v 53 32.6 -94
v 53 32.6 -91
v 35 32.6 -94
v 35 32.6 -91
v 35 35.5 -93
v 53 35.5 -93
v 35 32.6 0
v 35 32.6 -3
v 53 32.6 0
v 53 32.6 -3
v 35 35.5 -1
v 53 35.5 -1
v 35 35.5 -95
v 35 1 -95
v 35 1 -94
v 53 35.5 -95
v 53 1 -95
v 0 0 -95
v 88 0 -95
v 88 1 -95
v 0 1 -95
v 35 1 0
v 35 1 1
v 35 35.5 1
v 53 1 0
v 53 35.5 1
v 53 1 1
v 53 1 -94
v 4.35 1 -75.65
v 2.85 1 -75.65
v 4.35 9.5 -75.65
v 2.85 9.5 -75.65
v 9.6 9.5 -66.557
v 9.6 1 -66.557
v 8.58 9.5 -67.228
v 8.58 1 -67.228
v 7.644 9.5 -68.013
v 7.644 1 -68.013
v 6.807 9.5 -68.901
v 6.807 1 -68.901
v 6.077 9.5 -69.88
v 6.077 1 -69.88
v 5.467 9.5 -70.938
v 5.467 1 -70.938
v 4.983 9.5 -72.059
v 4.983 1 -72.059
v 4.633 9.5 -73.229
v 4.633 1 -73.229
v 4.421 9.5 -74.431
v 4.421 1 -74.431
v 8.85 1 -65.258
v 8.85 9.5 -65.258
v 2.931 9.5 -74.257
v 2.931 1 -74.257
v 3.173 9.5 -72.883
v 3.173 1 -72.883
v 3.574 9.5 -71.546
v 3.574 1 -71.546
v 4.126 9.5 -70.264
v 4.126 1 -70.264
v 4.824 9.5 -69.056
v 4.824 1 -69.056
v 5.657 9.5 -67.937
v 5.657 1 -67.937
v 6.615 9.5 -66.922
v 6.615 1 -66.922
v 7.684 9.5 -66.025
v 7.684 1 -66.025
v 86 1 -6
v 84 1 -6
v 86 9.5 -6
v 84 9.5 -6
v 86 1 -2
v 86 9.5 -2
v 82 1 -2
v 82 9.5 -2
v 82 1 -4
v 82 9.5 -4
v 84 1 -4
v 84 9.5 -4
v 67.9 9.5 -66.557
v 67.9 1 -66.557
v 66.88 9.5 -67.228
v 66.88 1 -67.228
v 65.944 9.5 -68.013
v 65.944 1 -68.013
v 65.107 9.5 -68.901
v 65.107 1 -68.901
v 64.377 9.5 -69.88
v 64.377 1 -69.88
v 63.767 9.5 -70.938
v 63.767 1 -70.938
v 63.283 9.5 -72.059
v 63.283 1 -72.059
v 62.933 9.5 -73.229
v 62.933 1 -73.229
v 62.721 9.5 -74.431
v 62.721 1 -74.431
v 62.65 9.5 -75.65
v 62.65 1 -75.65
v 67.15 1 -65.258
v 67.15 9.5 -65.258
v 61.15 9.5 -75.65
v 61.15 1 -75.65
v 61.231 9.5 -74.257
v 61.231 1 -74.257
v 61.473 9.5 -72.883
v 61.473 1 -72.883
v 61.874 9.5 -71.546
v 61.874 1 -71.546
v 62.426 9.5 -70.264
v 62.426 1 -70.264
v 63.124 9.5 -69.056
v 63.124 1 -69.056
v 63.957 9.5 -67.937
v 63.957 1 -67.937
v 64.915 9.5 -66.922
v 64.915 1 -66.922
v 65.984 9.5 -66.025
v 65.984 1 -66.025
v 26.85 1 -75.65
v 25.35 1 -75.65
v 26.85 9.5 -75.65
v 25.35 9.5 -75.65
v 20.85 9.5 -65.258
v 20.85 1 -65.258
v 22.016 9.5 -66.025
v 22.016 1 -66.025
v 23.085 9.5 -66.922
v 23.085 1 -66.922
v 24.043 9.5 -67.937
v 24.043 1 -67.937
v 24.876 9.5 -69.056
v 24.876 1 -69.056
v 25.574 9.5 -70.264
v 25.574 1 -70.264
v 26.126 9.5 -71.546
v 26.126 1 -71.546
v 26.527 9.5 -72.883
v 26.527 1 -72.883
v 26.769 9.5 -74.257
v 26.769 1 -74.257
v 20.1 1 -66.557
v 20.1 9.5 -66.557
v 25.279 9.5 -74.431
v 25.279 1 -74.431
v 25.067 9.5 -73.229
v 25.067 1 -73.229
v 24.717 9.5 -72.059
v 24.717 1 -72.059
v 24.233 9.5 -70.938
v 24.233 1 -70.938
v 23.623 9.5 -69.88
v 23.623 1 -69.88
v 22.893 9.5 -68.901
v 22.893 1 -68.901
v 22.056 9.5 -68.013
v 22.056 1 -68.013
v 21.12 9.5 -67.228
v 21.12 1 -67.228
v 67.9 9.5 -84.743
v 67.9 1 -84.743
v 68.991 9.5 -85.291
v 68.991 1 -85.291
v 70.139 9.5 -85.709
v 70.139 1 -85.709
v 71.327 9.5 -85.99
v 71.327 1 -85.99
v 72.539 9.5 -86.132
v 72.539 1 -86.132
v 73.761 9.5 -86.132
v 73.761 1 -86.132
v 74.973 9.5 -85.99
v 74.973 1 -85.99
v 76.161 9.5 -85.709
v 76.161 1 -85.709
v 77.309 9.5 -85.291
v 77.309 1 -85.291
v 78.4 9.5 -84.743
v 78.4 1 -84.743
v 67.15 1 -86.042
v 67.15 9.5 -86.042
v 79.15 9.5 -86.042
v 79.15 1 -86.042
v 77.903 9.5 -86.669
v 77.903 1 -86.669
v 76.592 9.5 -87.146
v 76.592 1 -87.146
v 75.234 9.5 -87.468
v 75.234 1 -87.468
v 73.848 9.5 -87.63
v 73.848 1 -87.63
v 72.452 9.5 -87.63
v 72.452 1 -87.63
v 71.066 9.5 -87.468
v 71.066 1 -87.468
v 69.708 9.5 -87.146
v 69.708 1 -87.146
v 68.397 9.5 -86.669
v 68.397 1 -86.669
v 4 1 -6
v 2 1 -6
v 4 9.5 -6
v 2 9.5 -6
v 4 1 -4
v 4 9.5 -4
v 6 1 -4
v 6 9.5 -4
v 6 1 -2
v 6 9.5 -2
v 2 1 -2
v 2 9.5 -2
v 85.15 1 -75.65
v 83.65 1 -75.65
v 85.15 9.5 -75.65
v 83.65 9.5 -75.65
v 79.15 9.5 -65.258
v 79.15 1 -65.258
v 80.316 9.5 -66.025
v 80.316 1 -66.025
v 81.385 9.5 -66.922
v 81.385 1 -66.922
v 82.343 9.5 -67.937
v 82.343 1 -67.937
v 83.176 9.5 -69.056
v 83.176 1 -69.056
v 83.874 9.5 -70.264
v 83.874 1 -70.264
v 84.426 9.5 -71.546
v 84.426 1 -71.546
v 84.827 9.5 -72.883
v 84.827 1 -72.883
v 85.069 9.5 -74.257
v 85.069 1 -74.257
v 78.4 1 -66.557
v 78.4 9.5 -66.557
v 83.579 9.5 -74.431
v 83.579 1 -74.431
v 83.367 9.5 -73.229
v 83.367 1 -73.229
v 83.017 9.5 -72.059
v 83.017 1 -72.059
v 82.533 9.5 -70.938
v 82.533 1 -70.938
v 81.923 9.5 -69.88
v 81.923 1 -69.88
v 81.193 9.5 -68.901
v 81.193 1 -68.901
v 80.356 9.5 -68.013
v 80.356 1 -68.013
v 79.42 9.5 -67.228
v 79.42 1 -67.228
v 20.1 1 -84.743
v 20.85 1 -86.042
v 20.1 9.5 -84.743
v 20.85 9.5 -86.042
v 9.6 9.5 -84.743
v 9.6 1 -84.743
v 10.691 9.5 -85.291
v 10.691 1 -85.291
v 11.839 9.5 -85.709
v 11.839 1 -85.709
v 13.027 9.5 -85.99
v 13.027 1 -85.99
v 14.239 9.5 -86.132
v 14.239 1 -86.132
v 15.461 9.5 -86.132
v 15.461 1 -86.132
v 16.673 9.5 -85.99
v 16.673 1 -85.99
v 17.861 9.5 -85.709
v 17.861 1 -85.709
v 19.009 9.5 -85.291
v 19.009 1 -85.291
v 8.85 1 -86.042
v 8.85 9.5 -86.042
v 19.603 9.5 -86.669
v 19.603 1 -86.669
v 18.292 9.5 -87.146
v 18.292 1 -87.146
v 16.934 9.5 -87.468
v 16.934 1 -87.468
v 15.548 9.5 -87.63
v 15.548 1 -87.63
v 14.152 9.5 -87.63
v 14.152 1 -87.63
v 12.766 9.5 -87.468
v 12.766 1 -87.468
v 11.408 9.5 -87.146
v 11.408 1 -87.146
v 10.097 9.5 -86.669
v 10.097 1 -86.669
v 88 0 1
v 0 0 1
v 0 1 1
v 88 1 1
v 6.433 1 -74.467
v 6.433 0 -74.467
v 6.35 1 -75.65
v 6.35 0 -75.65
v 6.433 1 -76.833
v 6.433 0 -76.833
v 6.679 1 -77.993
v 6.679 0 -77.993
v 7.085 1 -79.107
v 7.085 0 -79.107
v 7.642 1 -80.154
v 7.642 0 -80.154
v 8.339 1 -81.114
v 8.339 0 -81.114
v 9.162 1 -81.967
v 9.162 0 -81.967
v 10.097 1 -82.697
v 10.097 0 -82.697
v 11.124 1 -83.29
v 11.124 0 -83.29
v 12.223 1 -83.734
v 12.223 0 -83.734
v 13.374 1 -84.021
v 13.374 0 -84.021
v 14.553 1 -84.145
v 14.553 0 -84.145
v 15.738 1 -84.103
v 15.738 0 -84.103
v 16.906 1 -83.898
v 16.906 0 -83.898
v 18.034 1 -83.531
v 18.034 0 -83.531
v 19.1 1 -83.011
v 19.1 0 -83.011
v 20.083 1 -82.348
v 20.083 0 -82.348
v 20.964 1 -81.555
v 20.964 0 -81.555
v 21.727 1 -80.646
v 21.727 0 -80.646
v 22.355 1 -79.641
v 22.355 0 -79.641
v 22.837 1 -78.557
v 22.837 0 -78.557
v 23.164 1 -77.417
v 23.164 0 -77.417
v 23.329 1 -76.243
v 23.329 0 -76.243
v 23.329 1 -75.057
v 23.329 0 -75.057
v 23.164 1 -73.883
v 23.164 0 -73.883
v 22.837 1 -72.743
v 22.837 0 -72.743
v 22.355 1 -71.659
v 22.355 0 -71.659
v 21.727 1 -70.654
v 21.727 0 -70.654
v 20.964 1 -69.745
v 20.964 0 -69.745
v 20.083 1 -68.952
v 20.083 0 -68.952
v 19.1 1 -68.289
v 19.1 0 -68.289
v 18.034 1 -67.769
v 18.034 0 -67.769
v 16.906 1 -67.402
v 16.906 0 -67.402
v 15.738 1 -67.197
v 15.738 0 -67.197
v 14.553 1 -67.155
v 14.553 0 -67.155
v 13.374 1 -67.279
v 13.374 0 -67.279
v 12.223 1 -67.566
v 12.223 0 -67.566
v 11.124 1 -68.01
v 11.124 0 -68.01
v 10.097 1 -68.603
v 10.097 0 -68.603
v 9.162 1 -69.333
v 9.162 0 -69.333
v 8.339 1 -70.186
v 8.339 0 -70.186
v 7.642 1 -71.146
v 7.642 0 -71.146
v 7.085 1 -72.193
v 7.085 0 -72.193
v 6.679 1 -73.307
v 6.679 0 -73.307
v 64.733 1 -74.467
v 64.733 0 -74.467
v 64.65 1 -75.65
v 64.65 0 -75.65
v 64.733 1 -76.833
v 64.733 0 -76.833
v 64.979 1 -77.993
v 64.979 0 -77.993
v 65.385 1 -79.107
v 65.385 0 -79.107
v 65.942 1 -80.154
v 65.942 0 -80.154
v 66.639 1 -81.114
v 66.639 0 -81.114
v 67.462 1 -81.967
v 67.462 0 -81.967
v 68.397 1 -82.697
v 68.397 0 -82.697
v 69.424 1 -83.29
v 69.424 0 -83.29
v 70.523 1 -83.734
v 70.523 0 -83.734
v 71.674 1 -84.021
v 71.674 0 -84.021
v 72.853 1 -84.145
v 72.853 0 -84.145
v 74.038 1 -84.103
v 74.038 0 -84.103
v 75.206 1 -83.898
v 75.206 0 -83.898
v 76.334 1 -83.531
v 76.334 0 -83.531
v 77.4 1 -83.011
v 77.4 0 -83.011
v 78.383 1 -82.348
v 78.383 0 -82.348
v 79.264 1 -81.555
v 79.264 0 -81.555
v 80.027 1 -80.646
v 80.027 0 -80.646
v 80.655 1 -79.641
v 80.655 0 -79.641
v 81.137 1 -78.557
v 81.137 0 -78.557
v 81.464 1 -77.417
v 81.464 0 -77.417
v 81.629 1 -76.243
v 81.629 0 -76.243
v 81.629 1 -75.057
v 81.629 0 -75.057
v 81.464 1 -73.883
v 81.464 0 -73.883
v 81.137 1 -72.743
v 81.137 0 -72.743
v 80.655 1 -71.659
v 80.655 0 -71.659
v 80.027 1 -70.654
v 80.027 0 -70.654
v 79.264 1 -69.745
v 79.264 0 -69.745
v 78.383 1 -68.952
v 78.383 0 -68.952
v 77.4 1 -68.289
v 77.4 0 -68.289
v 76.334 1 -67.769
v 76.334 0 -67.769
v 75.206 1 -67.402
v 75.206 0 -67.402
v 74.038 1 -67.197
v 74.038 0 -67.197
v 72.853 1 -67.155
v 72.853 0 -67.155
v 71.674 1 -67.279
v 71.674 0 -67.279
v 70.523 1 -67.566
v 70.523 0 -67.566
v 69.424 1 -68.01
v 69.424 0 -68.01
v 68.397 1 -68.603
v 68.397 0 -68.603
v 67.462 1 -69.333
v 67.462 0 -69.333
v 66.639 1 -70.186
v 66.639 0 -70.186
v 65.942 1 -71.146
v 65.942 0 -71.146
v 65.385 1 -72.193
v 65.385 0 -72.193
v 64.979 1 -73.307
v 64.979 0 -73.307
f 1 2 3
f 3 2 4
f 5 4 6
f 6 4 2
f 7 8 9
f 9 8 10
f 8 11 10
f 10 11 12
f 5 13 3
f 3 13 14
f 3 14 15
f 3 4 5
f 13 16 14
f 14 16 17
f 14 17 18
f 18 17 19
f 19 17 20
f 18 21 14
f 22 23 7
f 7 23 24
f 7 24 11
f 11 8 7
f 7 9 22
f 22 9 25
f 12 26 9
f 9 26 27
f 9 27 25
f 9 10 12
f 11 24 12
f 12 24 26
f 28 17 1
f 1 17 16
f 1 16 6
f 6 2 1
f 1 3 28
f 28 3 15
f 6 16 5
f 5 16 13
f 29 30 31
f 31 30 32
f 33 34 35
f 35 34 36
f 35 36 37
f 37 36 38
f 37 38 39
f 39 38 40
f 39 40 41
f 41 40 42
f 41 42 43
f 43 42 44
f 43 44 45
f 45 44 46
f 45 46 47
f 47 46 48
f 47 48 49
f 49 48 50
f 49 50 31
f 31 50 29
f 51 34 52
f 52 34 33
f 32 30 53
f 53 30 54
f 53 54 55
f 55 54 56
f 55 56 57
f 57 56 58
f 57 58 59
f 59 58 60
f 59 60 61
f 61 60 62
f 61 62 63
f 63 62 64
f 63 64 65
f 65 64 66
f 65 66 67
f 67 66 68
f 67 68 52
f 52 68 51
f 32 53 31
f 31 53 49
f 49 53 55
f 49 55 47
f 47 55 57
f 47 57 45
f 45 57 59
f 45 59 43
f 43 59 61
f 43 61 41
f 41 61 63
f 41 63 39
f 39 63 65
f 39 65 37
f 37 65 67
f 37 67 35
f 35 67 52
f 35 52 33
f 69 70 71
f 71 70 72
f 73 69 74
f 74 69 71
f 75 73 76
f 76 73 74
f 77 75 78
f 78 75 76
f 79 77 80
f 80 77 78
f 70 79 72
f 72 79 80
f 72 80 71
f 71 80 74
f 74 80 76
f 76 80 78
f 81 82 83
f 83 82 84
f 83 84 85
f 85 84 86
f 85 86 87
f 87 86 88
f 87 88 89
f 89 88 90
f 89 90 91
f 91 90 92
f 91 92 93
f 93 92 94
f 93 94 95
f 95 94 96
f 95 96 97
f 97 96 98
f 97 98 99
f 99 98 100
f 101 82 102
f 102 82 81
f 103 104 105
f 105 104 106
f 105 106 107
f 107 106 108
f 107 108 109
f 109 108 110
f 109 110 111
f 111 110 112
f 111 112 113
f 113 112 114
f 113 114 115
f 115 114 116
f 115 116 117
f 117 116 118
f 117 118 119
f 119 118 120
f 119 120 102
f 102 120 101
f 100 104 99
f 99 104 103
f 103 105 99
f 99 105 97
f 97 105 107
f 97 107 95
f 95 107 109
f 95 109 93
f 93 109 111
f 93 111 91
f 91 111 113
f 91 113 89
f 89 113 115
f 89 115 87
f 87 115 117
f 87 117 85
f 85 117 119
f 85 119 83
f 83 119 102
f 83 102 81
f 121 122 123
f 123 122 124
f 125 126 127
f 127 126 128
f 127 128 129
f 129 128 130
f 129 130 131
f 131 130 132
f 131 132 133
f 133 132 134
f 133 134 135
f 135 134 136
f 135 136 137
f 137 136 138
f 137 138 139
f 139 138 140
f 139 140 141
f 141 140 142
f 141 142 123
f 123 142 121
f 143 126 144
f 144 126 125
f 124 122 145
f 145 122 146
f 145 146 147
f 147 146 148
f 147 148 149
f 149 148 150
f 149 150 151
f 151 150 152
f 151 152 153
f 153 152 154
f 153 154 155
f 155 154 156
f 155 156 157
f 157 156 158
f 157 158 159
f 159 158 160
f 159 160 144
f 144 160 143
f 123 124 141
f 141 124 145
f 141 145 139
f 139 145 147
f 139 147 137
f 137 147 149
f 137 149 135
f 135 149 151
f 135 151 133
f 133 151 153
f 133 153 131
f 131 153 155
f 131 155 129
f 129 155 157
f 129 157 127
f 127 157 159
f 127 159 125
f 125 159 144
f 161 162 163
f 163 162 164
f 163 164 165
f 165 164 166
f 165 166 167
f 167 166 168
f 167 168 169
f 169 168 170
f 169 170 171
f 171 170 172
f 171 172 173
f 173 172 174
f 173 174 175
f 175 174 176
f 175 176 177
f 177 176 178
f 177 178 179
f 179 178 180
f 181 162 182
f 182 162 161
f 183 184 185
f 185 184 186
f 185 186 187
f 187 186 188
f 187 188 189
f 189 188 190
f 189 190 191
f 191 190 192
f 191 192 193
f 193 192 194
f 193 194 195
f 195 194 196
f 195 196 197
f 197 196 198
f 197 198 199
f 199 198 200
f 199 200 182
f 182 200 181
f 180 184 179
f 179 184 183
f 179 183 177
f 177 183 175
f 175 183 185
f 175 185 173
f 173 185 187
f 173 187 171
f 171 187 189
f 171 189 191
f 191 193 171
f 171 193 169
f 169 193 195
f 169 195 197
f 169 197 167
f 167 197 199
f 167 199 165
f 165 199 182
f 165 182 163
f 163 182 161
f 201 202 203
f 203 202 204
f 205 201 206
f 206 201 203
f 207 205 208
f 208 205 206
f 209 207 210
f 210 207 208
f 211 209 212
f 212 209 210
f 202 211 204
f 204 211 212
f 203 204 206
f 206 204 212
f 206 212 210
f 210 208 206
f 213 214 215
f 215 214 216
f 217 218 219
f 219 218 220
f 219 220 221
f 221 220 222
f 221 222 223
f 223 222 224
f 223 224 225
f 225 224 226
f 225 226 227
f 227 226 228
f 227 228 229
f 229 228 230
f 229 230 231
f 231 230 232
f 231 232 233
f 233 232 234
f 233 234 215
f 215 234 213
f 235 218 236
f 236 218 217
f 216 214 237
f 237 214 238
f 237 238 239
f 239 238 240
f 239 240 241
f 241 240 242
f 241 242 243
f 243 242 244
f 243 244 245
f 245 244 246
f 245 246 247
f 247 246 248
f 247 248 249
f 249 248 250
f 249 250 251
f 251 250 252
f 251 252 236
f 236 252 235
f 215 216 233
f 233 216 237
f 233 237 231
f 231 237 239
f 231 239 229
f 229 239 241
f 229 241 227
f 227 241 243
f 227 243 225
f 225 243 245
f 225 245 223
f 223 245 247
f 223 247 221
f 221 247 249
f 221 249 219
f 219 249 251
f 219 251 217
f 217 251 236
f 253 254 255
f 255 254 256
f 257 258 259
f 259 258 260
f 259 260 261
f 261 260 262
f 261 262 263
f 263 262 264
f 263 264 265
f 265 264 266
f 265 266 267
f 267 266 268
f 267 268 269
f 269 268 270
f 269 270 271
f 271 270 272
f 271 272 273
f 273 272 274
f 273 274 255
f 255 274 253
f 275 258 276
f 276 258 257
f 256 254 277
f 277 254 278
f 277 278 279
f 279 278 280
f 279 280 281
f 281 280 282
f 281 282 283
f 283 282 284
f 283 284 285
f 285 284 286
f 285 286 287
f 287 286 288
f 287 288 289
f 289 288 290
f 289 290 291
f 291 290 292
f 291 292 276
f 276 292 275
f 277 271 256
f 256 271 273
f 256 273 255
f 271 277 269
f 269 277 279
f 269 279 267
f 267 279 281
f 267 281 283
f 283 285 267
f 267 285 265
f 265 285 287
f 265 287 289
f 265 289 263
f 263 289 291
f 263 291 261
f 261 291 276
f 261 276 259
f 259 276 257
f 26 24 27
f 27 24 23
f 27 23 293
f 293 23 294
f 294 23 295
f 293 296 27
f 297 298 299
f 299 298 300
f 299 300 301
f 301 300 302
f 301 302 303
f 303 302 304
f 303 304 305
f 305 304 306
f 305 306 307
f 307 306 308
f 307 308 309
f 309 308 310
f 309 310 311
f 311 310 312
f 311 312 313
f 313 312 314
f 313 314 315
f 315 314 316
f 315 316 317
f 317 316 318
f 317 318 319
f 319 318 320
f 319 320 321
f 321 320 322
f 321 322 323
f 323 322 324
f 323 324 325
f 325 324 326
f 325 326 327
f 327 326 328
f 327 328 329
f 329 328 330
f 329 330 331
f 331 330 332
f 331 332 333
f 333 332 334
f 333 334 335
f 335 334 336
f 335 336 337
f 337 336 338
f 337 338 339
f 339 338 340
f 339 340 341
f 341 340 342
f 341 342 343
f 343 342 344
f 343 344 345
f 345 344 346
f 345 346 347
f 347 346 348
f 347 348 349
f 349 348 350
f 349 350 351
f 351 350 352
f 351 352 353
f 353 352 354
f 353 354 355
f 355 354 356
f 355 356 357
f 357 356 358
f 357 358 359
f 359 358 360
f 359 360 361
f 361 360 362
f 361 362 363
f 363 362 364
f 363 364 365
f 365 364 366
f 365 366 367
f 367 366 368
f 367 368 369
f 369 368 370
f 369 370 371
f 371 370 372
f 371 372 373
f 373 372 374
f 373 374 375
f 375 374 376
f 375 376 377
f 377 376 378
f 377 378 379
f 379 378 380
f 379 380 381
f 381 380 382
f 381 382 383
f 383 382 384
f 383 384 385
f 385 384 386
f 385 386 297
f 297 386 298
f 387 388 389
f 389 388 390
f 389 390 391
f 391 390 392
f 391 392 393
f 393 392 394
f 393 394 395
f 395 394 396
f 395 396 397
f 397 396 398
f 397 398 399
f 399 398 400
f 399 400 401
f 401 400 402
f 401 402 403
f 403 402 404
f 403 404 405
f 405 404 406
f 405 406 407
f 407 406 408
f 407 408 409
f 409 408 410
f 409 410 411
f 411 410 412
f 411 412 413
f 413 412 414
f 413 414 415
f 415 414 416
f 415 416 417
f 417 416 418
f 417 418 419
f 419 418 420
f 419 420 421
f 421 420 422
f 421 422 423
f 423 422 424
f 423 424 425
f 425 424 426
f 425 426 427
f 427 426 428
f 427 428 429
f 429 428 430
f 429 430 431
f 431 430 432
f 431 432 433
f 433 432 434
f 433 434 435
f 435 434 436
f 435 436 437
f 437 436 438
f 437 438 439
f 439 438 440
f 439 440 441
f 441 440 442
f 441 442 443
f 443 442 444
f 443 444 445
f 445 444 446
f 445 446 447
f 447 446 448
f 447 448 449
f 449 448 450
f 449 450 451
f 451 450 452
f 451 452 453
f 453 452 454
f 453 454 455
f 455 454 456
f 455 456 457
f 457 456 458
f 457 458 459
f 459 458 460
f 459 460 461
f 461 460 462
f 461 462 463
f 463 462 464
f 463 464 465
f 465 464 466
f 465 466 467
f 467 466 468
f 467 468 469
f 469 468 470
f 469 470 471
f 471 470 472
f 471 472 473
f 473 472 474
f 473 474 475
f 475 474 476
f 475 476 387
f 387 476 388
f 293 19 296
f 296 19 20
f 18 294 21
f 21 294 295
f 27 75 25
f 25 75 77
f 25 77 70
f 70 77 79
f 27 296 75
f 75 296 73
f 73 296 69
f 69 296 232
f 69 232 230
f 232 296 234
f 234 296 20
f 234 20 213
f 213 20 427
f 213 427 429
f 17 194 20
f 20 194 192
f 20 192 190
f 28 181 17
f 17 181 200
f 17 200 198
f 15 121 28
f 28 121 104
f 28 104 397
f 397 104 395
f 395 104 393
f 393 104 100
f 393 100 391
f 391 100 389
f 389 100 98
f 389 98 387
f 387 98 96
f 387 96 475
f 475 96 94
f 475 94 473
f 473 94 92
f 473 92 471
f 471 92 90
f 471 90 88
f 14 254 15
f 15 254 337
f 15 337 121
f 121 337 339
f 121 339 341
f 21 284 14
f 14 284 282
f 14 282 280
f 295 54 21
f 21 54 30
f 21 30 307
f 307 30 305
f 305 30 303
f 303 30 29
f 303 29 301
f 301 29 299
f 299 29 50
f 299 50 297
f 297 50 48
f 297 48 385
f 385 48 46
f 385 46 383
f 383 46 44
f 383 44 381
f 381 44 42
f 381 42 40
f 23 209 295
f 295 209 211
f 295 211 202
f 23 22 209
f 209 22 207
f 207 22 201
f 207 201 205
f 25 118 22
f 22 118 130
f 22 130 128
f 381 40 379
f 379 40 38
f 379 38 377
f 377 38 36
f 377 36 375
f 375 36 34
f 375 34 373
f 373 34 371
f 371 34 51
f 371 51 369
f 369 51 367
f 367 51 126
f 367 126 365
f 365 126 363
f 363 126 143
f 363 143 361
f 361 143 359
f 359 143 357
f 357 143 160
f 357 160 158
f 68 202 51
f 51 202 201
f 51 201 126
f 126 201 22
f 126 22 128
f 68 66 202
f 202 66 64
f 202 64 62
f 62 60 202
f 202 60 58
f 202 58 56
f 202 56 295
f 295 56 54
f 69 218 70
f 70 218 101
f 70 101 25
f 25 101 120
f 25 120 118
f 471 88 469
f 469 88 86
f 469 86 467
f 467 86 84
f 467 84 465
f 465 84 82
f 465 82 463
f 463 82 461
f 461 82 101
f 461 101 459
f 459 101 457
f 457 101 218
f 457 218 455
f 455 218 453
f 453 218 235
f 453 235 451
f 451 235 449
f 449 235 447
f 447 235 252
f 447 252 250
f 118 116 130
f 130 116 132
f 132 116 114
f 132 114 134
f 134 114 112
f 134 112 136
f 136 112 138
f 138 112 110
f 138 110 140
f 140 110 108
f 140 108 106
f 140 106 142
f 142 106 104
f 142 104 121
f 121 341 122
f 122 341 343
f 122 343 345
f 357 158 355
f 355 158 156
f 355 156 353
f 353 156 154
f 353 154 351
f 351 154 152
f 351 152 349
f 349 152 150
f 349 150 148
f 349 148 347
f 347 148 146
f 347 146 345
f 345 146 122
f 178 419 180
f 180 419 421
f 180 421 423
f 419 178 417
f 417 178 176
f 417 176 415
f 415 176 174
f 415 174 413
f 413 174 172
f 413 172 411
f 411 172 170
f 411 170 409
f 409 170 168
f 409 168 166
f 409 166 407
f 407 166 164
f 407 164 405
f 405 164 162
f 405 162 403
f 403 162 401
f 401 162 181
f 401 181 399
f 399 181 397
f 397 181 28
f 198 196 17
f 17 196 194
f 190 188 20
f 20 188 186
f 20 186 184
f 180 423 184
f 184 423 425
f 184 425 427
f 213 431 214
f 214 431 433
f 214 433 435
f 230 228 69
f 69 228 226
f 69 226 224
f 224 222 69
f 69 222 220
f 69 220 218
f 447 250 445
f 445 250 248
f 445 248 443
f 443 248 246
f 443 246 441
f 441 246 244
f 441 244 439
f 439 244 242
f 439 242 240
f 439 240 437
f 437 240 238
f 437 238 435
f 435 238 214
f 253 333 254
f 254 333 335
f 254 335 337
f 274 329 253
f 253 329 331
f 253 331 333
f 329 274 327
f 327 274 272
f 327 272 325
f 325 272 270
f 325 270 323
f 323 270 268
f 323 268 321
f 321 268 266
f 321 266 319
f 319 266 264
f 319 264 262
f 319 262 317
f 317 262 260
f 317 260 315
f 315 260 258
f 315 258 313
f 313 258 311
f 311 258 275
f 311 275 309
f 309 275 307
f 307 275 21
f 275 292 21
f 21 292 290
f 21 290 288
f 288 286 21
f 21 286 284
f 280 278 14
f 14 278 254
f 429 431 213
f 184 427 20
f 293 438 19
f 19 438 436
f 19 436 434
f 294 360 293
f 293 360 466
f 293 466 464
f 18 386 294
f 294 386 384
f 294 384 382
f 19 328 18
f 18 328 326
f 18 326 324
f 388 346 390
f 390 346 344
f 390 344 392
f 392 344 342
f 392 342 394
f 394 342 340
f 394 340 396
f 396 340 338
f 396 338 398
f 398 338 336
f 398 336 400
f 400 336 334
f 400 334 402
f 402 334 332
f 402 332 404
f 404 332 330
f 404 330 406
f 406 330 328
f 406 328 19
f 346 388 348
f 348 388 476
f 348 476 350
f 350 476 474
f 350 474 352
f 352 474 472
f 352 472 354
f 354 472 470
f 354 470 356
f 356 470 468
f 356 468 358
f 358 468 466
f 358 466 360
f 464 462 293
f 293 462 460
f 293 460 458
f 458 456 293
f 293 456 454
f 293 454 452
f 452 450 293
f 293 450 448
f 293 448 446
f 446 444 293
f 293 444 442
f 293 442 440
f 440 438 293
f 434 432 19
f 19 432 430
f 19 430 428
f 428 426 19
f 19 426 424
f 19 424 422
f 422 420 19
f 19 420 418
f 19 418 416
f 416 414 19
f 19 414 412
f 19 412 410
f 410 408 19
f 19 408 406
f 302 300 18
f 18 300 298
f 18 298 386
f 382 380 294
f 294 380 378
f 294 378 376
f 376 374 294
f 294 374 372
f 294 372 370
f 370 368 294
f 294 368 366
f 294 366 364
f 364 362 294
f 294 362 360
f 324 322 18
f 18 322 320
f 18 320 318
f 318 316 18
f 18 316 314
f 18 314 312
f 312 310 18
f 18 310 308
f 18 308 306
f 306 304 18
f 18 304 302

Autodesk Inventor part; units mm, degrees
ref_plane "YZ Plane" through (0, 0, 0) normal (1, 0, 0) x (0, 1, 0)
ref_plane "XZ Plane" through (0, 0, 0) normal (0, 1, 0) x (-1, 0, 0)
ref_plane "XY Plane" through (0, 0, 0) normal (0, 0, 1) x (1, 0, 0)
sketch "Sketch1" plane through (0, 0, 0) normal (0, 1, 0) x (-1, 0, 0)
  line L0 (0, 0) -> (-88, 0)
  line L1 (-88, 0) -> (-88, -94)
  line L2 (-88, -94) -> (0, -94)
  line L3 (0, -94) -> (0, 0)
  line L4 (0, -94) -> (0, -75.65)
  line L5 (0, -94) -> (-14.85, -94)
  circle A0 centre (-14.85, -75.65) radius 8.5
  line L6 (-44, -88.9444) -> (-44, -54.2543) construction
  circle A1 centre (-73.15, -75.65) radius 8.5
  dimension "d0" = 88
  dimension "d1" = 94
  dimension "d2" = 18.35
  dimension "d3" = 14.85
  dimension "d4" = 17
extrude "Extrusion1" add sketch "Sketch1" along normal blind 1
sketch "Sketch2" plane through (0, 1, 0) normal (0, 1, 0) x (1, 0, 0)
  line L0 (88, 94) -> (0, 94) construction
  line L1 (0, 94) -> (0, 0) construction
  line L2 (0, 0) -> (88, 0) construction
  line L3 (88, 0) -> (88, 94) construction
  circle A0 centre (73.15, 75.65) radius 8.5 construction
  circle A1 centre (14.85, 75.65) radius 8.5 construction
  line L4 (0, 94) -> (88, 94) construction
  line L5 (88, 94) -> (88, 95) construction
  line L6 (88, 95) -> (0, 95) construction
  line L7 (0, 95) -> (0, 94) construction
  line L8 (0, 0) -> (88, 0) construction
  line L9 (88, 0) -> (88, -1) construction
  line L10 (88, -1) -> (0, -1) construction
  line L11 (0, -1) -> (0, 0) construction
  line L12 (88, 95) -> (0, 95)
  line L13 (0, 95) -> (0, 94)
  line L14 (0, 94) -> (88, 94)
  line L15 (88, 94) -> (88, 95)
  line L16 (0, 0) -> (88, 0)
  line L17 (88, 0) -> (88, -1)
  line L18 (88, -1) -> (0, -1)
  line L19 (0, -1) -> (0, 0)
  dimension "d7" = 1
  dimension "d8" = 1
extrude "Extrusion2" add sketch "Sketch2" against normal blind 1
sketch "Sketch3" plane through (0, 1, 0) normal (0, 1, 0) x (1, 0, 0)
  line L0 (0, 95) -> (0, -1) construction
  line L1 (0, -1) -> (88, -1) construction
  line L2 (88, -1) -> (88, 95) construction
  line L3 (88, 95) -> (0, 95) construction
  circle A0 centre (73.15, 75.65) radius 8.5 construction
  circle A1 centre (14.85, 75.65) radius 8.5 construction
  line L4 (0, 0) -> (4, 0) construction
  line L5 (4, 0) -> (4, 4) construction
  line L6 (4, 4) -> (0, 4) construction
  line L7 (0, 4) -> (0, 0) construction
  line L8 (88, 0) -> (84, 0) construction
  line L9 (84, 0) -> (84, 4) construction
  line L10 (84, 4) -> (88, 4) construction
  line L11 (88, 4) -> (88, 0) construction
  line L12 (4, 4) -> (2, 4) construction
  line L13 (2, 4) -> (2, 2) construction
  line L14 (2, 2) -> (4, 2) construction
  line L15 (4, 2) -> (4, 4) construction
  line L16 (2, 2) -> (6, 2)
  line L17 (6, 2) -> (6, 4)
  line L18 (6, 4) -> (2, 4)
  line L19 (2, 4) -> (2, 2)
  line L20 (2, 2) -> (4, 2)
  line L21 (4, 2) -> (4, 6)
  line L22 (4, 6) -> (2, 6)
  line L23 (2, 6) -> (2, 2)
  line L24 (86, 2) -> (82, 2)
  line L25 (82, 2) -> (82, 4)
  line L26 (82, 4) -> (86, 4)
  line L27 (86, 4) -> (86, 2)
  line L28 (86, 2) -> (84, 2)
  line L29 (84, 2) -> (84, 6)
  line L30 (84, 6) -> (86, 6)
  line L31 (86, 6) -> (86, 2)
  line L32 (44, 4.3599) -> (37, 4.3599) construction
  line L33 (88, -1) -> (0, -1) construction
  line L34 (37, -1) -> (51, -1) construction
  line L35 (51, -1) -> (51, 0) construction
  line L36 (51, 0) -> (37, 0) construction
  line L37 (37, 0) -> (37, -1) construction
  line L38 (37, -1) -> (51, -1)
  line L39 (51, -1) -> (51, 0)
  line L40 (51, 0) -> (37, 0)
  line L41 (37, 0) -> (37, -1)
  line L42 (0, 95) -> (88, 95) projected
  line L43 (37, 95) -> (51, 95)
  line L44 (51, 95) -> (51, 94)
  line L45 (51, 94) -> (37, 94)
  line L46 (37, 94) -> (37, 95)
  circle A2 centre (14.85, 75.65) radius 10.5
  circle A3 centre (14.85, 75.65) radius 12
  line L47 (14.85, 75.65) -> (26.85, 75.65) construction
  line L48 (14.85, 75.65) -> (20.85, 86.0423) construction
  line L49 (14.85, 75.65) -> (8.85, 86.0423) construction
  line L50 (14.85, 75.65) -> (2.85, 75.65) construction
  line L51 (14.85, 75.65) -> (8.85, 65.2577) construction
  line L52 (14.85, 75.65) -> (20.85, 65.2577) construction
  line L53 (9.6, 84.7433) -> (8.85, 86.0423) construction
  line L54 (9.6, 84.7433) -> (8.85, 86.0423)
  line L55 (20.85, 86.0423) -> (20.1, 84.7433)
  line L56 (25.35, 75.65) -> (26.85, 75.65)
  line L57 (20.85, 65.2577) -> (20.1, 66.5567)
  line L58 (9.6, 66.5567) -> (8.85, 65.2577)
  line L59 (4.35, 75.65) -> (2.85, 75.65)
  line L60 (44, 84.7433) -> (44, 74.6259) construction
  circle A4 centre (73.15, 75.65) radius 8.5 construction
  circle A5 centre (73.15, 75.65) radius 10.5
  circle A6 centre (73.15, 75.65) radius 12
  line L61 (73.15, 75.65) -> (61.15, 75.65) construction
  line L62 (73.15, 75.65) -> (67.15, 86.0423) construction
  line L63 (73.15, 75.65) -> (79.15, 86.0423) construction
  line L64 (73.15, 75.65) -> (85.15, 75.65) construction
  line L65 (73.15, 75.65) -> (79.15, 65.2577) construction
  line L66 (73.15, 75.65) -> (67.15, 65.2577) construction
  line L67 (78.4, 84.7433) -> (79.15, 86.0423) construction
  line L68 (78.4, 84.7433) -> (79.15, 86.0423)
  line L69 (67.15, 86.0423) -> (67.9, 84.7433)
  line L70 (62.65, 75.65) -> (61.15, 75.65)
  line L71 (67.15, 65.2577) -> (67.9, 66.5567)
  line L72 (78.4, 66.5567) -> (79.15, 65.2577)
  line L73 (83.65, 75.65) -> (85.15, 75.65)
  point P0 (84, 4)
  dimension "d11" = 4
  dimension "d12" = 4
  dimension "d13" = 4
  dimension "d14" = 4
  dimension "d15" = 2
  dimension "d16" = 2
  dimension "d17" = 4
  dimension "d18" = 4
  dimension "d19" = 4
  dimension "d20" = 2
  dimension "d21" = 4
  dimension "d22" = 7
  dimension "d23" = 14
  dimension "d24" = 14
  dimension "d25" = 1
  dimension "d26" = 2
  dimension "d27" = 1.5
  dimension "d30" = 360
extrude "Extrusion3" add sketch "Sketch3" along normal blind 8.5 contours L19 L18 L21 L16 | L21 L18 L17 L16 | L23 L22 L21 L18 | L24 L29 L26 L27 | L24 L25 L26 L29 | L26 L29 L30 L31 | L56 A3 L57 A2 | A2 L54 A3 L55 | L58 A3 L59 A2 | L73 A6 L72 A5 | A5 L69 A6 L68 | L71 A6 L70 A5
sketch "Sketch4" plane through (0, 1, 0) normal (0, 1, 0) x (1, 0, 0)
  line L0 (2.85, 75.65) -> (4.35, 75.65) construction
  arc A0 (4.35, 75.65) -> (9.6, 66.5567) centre (14.85, 75.65) ccw construction
  line L1 (9.6, 66.5567) -> (8.85, 65.2577) construction
  arc A1 (2.85, 75.65) -> (8.85, 65.2577) centre (14.85, 75.65) ccw construction
  line L2 (84, 6) -> (86, 6) construction
  line L3 (86, 6) -> (86, 2) construction
  line L4 (86, 2) -> (82, 2) construction
  line L5 (82, 2) -> (82, 4) construction
  line L6 (82, 4) -> (84, 4) construction
  line L7 (84, 4) -> (84, 6) construction
  arc A2 (62.65, 75.65) -> (67.9, 66.5567) centre (73.15, 75.65) ccw construction
  line L8 (67.9, 66.5567) -> (67.15, 65.2577) construction
  arc A3 (61.15, 75.65) -> (67.15, 65.2577) centre (73.15, 75.65) ccw construction
  line L9 (61.15, 75.65) -> (62.65, 75.65) construction
  line L10 (25.35, 75.65) -> (26.85, 75.65) construction
  arc A4 (20.85, 65.2577) -> (26.85, 75.65) centre (14.85, 75.65) ccw construction
  line L11 (20.85, 65.2577) -> (20.1, 66.5567) construction
  arc A5 (20.1, 66.5567) -> (25.35, 75.65) centre (14.85, 75.65) ccw construction
  arc A6 (78.4, 84.7433) -> (67.9, 84.7433) centre (73.15, 75.65) ccw construction
  line L12 (67.9, 84.7433) -> (67.15, 86.0423) construction
  arc A7 (79.15, 86.0423) -> (67.15, 86.0423) centre (73.15, 75.65) ccw construction
  line L13 (79.15, 86.0423) -> (78.4, 84.7433) construction
  line L14 (2, 6) -> (4, 6) construction
  line L15 (4, 6) -> (4, 4) construction
  line L16 (4, 4) -> (6, 4) construction
  line L17 (6, 4) -> (6, 2) construction
  line L18 (6, 2) -> (2, 2) construction
  line L19 (2, 2) -> (2, 6) construction
  line L20 (83.65, 75.65) -> (85.15, 75.65) construction
  arc A8 (79.15, 65.2577) -> (85.15, 75.65) centre (73.15, 75.65) ccw construction
  line L21 (79.15, 65.2577) -> (78.4, 66.5567) construction
  arc A9 (78.4, 66.5567) -> (83.65, 75.65) centre (73.15, 75.65) ccw construction
  line L22 (20.85, 86.0423) -> (20.1, 84.7433) construction
  arc A10 (20.1, 84.7433) -> (9.6, 84.7433) centre (14.85, 75.65) ccw construction
  line L23 (9.6, 84.7433) -> (8.85, 86.0423) construction
  arc A11 (20.85, 86.0423) -> (8.85, 86.0423) centre (14.85, 75.65) ccw construction
  line L24 (0, 95) -> (0, -1) construction
  line L25 (0, -1) -> (88, -1) construction
  line L26 (88, -1) -> (88, 95) construction
  line L27 (88, 95) -> (0, 95) construction
  circle A12 centre (73.15, 75.65) radius 8.5 construction
  circle A13 centre (14.85, 75.65) radius 8.5 construction
  line L28 (44, 63.0064) -> (44, 95) construction
  line L29 (88, 95) -> (0, 95) construction
  line L30 (44, 95) -> (53, 95) construction
  line L31 (53, 95) -> (35, 95) construction
  line L32 (35, 95) -> (53, 95) construction
  line L33 (53, 95) -> (53, 94) construction
  line L34 (53, 94) -> (35, 94) construction
  line L35 (35, 94) -> (35, 95) construction
  line L36 (35, 95) -> (53, 95)
  line L37 (53, 95) -> (53, 94)
  line L38 (53, 94) -> (35, 94)
  line L39 (35, 94) -> (35, 95)
  line L40 (34.0602, 47) -> (52.5165, 47)
  line L41 (44, -1) -> (53, -1) construction
  line L42 (53, -1) -> (35, -1) construction
  line L43 (35, -1) -> (53, -1) construction
  line L44 (53, -1) -> (53, 0) construction
  line L45 (53, 0) -> (35, 0) construction
  line L46 (35, 0) -> (35, -1) construction
  line L47 (35, -1) -> (53, -1)
  line L48 (53, -1) -> (53, 0)
  line L49 (53, 0) -> (35, 0)
  line L50 (35, 0) -> (35, -1)
  point P0 (0, 0)
  dimension "d34" = 9
  dimension "d35" = 18
  dimension "d36" = 1
extrude "Extrusion4" add sketch "Sketch4" along normal blind 34.5
sketch "Sketch5" plane through (53, 1, 1) normal (1, 0, 0) x (0, 0, -1)
  line L0 (1, 0) -> (0, 0) construction
  line L1 (1, 0) -> (1, 34.5) construction
  line L2 (0, 34.5) -> (1, 34.5) construction
  line L3 (0, 0) -> (0, 34.5) construction
  line L4 (96, -1) -> (0, -1) construction
  line L5 (96, 0) -> (96, -1) construction
  line L6 (0, 0) -> (96, 0) construction
  line L7 (0, 0) -> (0, -1) construction
  line L8 (96, 0) -> (96, 34.5) construction
  line L9 (96, 0) -> (95, 0) construction
  line L10 (96, 0) -> (96, 34.5) construction
  line L11 (95, 34.5) -> (96, 34.5) construction
  line L12 (95, 0) -> (95, 34.5) construction
  line L13 (0, 34.5) -> (0, 31.6) construction
  line L14 (1, 31.6) -> (4, 31.6) construction
  line L15 (1, 34.5) -> (2, 34.5) construction
  line L16 (2, 34.5) -> (4, 31.6) construction
  line L17 (0, 34.5) -> (2, 34.5)
  line L18 (4, 31.6) -> (2, 34.5)
  line L19 (4, 31.6) -> (0, 31.6)
  line L20 (0, 31.6) -> (0, 34.5)
  line L21 (0, -1) -> (96, -1) projected
  line L22 (48, -1) -> (48, 2.5166)
  line L23 (95, 0) -> (95, 34.5) construction
  line L24 (96, 34.5) -> (95, 34.5) construction
  line L25 (96, 0) -> (96, 34.5) construction
  line L26 (96, 34.5) -> (96, 31.6) construction
  line L27 (95, 31.6) -> (92, 31.6) construction
  line L28 (95, 34.5) -> (94, 34.5) construction
  line L29 (94, 34.5) -> (92, 31.6) construction
  line L30 (96, 34.5) -> (94, 34.5)
  line L31 (92, 31.6) -> (94, 34.5)
  line L32 (92, 31.6) -> (96, 31.6)
  line L33 (96, 31.6) -> (96, 34.5)
  point P0 (1, -1)
  dimension "d39" = 2.9
  dimension "d40" = 3
  dimension "d41" = 1
extrude "Extrusion5" add sketch "Sketch5" against normal up to surface (18 mm away)
equation "\"d42\" = d40"
properties part number "case_v1"
